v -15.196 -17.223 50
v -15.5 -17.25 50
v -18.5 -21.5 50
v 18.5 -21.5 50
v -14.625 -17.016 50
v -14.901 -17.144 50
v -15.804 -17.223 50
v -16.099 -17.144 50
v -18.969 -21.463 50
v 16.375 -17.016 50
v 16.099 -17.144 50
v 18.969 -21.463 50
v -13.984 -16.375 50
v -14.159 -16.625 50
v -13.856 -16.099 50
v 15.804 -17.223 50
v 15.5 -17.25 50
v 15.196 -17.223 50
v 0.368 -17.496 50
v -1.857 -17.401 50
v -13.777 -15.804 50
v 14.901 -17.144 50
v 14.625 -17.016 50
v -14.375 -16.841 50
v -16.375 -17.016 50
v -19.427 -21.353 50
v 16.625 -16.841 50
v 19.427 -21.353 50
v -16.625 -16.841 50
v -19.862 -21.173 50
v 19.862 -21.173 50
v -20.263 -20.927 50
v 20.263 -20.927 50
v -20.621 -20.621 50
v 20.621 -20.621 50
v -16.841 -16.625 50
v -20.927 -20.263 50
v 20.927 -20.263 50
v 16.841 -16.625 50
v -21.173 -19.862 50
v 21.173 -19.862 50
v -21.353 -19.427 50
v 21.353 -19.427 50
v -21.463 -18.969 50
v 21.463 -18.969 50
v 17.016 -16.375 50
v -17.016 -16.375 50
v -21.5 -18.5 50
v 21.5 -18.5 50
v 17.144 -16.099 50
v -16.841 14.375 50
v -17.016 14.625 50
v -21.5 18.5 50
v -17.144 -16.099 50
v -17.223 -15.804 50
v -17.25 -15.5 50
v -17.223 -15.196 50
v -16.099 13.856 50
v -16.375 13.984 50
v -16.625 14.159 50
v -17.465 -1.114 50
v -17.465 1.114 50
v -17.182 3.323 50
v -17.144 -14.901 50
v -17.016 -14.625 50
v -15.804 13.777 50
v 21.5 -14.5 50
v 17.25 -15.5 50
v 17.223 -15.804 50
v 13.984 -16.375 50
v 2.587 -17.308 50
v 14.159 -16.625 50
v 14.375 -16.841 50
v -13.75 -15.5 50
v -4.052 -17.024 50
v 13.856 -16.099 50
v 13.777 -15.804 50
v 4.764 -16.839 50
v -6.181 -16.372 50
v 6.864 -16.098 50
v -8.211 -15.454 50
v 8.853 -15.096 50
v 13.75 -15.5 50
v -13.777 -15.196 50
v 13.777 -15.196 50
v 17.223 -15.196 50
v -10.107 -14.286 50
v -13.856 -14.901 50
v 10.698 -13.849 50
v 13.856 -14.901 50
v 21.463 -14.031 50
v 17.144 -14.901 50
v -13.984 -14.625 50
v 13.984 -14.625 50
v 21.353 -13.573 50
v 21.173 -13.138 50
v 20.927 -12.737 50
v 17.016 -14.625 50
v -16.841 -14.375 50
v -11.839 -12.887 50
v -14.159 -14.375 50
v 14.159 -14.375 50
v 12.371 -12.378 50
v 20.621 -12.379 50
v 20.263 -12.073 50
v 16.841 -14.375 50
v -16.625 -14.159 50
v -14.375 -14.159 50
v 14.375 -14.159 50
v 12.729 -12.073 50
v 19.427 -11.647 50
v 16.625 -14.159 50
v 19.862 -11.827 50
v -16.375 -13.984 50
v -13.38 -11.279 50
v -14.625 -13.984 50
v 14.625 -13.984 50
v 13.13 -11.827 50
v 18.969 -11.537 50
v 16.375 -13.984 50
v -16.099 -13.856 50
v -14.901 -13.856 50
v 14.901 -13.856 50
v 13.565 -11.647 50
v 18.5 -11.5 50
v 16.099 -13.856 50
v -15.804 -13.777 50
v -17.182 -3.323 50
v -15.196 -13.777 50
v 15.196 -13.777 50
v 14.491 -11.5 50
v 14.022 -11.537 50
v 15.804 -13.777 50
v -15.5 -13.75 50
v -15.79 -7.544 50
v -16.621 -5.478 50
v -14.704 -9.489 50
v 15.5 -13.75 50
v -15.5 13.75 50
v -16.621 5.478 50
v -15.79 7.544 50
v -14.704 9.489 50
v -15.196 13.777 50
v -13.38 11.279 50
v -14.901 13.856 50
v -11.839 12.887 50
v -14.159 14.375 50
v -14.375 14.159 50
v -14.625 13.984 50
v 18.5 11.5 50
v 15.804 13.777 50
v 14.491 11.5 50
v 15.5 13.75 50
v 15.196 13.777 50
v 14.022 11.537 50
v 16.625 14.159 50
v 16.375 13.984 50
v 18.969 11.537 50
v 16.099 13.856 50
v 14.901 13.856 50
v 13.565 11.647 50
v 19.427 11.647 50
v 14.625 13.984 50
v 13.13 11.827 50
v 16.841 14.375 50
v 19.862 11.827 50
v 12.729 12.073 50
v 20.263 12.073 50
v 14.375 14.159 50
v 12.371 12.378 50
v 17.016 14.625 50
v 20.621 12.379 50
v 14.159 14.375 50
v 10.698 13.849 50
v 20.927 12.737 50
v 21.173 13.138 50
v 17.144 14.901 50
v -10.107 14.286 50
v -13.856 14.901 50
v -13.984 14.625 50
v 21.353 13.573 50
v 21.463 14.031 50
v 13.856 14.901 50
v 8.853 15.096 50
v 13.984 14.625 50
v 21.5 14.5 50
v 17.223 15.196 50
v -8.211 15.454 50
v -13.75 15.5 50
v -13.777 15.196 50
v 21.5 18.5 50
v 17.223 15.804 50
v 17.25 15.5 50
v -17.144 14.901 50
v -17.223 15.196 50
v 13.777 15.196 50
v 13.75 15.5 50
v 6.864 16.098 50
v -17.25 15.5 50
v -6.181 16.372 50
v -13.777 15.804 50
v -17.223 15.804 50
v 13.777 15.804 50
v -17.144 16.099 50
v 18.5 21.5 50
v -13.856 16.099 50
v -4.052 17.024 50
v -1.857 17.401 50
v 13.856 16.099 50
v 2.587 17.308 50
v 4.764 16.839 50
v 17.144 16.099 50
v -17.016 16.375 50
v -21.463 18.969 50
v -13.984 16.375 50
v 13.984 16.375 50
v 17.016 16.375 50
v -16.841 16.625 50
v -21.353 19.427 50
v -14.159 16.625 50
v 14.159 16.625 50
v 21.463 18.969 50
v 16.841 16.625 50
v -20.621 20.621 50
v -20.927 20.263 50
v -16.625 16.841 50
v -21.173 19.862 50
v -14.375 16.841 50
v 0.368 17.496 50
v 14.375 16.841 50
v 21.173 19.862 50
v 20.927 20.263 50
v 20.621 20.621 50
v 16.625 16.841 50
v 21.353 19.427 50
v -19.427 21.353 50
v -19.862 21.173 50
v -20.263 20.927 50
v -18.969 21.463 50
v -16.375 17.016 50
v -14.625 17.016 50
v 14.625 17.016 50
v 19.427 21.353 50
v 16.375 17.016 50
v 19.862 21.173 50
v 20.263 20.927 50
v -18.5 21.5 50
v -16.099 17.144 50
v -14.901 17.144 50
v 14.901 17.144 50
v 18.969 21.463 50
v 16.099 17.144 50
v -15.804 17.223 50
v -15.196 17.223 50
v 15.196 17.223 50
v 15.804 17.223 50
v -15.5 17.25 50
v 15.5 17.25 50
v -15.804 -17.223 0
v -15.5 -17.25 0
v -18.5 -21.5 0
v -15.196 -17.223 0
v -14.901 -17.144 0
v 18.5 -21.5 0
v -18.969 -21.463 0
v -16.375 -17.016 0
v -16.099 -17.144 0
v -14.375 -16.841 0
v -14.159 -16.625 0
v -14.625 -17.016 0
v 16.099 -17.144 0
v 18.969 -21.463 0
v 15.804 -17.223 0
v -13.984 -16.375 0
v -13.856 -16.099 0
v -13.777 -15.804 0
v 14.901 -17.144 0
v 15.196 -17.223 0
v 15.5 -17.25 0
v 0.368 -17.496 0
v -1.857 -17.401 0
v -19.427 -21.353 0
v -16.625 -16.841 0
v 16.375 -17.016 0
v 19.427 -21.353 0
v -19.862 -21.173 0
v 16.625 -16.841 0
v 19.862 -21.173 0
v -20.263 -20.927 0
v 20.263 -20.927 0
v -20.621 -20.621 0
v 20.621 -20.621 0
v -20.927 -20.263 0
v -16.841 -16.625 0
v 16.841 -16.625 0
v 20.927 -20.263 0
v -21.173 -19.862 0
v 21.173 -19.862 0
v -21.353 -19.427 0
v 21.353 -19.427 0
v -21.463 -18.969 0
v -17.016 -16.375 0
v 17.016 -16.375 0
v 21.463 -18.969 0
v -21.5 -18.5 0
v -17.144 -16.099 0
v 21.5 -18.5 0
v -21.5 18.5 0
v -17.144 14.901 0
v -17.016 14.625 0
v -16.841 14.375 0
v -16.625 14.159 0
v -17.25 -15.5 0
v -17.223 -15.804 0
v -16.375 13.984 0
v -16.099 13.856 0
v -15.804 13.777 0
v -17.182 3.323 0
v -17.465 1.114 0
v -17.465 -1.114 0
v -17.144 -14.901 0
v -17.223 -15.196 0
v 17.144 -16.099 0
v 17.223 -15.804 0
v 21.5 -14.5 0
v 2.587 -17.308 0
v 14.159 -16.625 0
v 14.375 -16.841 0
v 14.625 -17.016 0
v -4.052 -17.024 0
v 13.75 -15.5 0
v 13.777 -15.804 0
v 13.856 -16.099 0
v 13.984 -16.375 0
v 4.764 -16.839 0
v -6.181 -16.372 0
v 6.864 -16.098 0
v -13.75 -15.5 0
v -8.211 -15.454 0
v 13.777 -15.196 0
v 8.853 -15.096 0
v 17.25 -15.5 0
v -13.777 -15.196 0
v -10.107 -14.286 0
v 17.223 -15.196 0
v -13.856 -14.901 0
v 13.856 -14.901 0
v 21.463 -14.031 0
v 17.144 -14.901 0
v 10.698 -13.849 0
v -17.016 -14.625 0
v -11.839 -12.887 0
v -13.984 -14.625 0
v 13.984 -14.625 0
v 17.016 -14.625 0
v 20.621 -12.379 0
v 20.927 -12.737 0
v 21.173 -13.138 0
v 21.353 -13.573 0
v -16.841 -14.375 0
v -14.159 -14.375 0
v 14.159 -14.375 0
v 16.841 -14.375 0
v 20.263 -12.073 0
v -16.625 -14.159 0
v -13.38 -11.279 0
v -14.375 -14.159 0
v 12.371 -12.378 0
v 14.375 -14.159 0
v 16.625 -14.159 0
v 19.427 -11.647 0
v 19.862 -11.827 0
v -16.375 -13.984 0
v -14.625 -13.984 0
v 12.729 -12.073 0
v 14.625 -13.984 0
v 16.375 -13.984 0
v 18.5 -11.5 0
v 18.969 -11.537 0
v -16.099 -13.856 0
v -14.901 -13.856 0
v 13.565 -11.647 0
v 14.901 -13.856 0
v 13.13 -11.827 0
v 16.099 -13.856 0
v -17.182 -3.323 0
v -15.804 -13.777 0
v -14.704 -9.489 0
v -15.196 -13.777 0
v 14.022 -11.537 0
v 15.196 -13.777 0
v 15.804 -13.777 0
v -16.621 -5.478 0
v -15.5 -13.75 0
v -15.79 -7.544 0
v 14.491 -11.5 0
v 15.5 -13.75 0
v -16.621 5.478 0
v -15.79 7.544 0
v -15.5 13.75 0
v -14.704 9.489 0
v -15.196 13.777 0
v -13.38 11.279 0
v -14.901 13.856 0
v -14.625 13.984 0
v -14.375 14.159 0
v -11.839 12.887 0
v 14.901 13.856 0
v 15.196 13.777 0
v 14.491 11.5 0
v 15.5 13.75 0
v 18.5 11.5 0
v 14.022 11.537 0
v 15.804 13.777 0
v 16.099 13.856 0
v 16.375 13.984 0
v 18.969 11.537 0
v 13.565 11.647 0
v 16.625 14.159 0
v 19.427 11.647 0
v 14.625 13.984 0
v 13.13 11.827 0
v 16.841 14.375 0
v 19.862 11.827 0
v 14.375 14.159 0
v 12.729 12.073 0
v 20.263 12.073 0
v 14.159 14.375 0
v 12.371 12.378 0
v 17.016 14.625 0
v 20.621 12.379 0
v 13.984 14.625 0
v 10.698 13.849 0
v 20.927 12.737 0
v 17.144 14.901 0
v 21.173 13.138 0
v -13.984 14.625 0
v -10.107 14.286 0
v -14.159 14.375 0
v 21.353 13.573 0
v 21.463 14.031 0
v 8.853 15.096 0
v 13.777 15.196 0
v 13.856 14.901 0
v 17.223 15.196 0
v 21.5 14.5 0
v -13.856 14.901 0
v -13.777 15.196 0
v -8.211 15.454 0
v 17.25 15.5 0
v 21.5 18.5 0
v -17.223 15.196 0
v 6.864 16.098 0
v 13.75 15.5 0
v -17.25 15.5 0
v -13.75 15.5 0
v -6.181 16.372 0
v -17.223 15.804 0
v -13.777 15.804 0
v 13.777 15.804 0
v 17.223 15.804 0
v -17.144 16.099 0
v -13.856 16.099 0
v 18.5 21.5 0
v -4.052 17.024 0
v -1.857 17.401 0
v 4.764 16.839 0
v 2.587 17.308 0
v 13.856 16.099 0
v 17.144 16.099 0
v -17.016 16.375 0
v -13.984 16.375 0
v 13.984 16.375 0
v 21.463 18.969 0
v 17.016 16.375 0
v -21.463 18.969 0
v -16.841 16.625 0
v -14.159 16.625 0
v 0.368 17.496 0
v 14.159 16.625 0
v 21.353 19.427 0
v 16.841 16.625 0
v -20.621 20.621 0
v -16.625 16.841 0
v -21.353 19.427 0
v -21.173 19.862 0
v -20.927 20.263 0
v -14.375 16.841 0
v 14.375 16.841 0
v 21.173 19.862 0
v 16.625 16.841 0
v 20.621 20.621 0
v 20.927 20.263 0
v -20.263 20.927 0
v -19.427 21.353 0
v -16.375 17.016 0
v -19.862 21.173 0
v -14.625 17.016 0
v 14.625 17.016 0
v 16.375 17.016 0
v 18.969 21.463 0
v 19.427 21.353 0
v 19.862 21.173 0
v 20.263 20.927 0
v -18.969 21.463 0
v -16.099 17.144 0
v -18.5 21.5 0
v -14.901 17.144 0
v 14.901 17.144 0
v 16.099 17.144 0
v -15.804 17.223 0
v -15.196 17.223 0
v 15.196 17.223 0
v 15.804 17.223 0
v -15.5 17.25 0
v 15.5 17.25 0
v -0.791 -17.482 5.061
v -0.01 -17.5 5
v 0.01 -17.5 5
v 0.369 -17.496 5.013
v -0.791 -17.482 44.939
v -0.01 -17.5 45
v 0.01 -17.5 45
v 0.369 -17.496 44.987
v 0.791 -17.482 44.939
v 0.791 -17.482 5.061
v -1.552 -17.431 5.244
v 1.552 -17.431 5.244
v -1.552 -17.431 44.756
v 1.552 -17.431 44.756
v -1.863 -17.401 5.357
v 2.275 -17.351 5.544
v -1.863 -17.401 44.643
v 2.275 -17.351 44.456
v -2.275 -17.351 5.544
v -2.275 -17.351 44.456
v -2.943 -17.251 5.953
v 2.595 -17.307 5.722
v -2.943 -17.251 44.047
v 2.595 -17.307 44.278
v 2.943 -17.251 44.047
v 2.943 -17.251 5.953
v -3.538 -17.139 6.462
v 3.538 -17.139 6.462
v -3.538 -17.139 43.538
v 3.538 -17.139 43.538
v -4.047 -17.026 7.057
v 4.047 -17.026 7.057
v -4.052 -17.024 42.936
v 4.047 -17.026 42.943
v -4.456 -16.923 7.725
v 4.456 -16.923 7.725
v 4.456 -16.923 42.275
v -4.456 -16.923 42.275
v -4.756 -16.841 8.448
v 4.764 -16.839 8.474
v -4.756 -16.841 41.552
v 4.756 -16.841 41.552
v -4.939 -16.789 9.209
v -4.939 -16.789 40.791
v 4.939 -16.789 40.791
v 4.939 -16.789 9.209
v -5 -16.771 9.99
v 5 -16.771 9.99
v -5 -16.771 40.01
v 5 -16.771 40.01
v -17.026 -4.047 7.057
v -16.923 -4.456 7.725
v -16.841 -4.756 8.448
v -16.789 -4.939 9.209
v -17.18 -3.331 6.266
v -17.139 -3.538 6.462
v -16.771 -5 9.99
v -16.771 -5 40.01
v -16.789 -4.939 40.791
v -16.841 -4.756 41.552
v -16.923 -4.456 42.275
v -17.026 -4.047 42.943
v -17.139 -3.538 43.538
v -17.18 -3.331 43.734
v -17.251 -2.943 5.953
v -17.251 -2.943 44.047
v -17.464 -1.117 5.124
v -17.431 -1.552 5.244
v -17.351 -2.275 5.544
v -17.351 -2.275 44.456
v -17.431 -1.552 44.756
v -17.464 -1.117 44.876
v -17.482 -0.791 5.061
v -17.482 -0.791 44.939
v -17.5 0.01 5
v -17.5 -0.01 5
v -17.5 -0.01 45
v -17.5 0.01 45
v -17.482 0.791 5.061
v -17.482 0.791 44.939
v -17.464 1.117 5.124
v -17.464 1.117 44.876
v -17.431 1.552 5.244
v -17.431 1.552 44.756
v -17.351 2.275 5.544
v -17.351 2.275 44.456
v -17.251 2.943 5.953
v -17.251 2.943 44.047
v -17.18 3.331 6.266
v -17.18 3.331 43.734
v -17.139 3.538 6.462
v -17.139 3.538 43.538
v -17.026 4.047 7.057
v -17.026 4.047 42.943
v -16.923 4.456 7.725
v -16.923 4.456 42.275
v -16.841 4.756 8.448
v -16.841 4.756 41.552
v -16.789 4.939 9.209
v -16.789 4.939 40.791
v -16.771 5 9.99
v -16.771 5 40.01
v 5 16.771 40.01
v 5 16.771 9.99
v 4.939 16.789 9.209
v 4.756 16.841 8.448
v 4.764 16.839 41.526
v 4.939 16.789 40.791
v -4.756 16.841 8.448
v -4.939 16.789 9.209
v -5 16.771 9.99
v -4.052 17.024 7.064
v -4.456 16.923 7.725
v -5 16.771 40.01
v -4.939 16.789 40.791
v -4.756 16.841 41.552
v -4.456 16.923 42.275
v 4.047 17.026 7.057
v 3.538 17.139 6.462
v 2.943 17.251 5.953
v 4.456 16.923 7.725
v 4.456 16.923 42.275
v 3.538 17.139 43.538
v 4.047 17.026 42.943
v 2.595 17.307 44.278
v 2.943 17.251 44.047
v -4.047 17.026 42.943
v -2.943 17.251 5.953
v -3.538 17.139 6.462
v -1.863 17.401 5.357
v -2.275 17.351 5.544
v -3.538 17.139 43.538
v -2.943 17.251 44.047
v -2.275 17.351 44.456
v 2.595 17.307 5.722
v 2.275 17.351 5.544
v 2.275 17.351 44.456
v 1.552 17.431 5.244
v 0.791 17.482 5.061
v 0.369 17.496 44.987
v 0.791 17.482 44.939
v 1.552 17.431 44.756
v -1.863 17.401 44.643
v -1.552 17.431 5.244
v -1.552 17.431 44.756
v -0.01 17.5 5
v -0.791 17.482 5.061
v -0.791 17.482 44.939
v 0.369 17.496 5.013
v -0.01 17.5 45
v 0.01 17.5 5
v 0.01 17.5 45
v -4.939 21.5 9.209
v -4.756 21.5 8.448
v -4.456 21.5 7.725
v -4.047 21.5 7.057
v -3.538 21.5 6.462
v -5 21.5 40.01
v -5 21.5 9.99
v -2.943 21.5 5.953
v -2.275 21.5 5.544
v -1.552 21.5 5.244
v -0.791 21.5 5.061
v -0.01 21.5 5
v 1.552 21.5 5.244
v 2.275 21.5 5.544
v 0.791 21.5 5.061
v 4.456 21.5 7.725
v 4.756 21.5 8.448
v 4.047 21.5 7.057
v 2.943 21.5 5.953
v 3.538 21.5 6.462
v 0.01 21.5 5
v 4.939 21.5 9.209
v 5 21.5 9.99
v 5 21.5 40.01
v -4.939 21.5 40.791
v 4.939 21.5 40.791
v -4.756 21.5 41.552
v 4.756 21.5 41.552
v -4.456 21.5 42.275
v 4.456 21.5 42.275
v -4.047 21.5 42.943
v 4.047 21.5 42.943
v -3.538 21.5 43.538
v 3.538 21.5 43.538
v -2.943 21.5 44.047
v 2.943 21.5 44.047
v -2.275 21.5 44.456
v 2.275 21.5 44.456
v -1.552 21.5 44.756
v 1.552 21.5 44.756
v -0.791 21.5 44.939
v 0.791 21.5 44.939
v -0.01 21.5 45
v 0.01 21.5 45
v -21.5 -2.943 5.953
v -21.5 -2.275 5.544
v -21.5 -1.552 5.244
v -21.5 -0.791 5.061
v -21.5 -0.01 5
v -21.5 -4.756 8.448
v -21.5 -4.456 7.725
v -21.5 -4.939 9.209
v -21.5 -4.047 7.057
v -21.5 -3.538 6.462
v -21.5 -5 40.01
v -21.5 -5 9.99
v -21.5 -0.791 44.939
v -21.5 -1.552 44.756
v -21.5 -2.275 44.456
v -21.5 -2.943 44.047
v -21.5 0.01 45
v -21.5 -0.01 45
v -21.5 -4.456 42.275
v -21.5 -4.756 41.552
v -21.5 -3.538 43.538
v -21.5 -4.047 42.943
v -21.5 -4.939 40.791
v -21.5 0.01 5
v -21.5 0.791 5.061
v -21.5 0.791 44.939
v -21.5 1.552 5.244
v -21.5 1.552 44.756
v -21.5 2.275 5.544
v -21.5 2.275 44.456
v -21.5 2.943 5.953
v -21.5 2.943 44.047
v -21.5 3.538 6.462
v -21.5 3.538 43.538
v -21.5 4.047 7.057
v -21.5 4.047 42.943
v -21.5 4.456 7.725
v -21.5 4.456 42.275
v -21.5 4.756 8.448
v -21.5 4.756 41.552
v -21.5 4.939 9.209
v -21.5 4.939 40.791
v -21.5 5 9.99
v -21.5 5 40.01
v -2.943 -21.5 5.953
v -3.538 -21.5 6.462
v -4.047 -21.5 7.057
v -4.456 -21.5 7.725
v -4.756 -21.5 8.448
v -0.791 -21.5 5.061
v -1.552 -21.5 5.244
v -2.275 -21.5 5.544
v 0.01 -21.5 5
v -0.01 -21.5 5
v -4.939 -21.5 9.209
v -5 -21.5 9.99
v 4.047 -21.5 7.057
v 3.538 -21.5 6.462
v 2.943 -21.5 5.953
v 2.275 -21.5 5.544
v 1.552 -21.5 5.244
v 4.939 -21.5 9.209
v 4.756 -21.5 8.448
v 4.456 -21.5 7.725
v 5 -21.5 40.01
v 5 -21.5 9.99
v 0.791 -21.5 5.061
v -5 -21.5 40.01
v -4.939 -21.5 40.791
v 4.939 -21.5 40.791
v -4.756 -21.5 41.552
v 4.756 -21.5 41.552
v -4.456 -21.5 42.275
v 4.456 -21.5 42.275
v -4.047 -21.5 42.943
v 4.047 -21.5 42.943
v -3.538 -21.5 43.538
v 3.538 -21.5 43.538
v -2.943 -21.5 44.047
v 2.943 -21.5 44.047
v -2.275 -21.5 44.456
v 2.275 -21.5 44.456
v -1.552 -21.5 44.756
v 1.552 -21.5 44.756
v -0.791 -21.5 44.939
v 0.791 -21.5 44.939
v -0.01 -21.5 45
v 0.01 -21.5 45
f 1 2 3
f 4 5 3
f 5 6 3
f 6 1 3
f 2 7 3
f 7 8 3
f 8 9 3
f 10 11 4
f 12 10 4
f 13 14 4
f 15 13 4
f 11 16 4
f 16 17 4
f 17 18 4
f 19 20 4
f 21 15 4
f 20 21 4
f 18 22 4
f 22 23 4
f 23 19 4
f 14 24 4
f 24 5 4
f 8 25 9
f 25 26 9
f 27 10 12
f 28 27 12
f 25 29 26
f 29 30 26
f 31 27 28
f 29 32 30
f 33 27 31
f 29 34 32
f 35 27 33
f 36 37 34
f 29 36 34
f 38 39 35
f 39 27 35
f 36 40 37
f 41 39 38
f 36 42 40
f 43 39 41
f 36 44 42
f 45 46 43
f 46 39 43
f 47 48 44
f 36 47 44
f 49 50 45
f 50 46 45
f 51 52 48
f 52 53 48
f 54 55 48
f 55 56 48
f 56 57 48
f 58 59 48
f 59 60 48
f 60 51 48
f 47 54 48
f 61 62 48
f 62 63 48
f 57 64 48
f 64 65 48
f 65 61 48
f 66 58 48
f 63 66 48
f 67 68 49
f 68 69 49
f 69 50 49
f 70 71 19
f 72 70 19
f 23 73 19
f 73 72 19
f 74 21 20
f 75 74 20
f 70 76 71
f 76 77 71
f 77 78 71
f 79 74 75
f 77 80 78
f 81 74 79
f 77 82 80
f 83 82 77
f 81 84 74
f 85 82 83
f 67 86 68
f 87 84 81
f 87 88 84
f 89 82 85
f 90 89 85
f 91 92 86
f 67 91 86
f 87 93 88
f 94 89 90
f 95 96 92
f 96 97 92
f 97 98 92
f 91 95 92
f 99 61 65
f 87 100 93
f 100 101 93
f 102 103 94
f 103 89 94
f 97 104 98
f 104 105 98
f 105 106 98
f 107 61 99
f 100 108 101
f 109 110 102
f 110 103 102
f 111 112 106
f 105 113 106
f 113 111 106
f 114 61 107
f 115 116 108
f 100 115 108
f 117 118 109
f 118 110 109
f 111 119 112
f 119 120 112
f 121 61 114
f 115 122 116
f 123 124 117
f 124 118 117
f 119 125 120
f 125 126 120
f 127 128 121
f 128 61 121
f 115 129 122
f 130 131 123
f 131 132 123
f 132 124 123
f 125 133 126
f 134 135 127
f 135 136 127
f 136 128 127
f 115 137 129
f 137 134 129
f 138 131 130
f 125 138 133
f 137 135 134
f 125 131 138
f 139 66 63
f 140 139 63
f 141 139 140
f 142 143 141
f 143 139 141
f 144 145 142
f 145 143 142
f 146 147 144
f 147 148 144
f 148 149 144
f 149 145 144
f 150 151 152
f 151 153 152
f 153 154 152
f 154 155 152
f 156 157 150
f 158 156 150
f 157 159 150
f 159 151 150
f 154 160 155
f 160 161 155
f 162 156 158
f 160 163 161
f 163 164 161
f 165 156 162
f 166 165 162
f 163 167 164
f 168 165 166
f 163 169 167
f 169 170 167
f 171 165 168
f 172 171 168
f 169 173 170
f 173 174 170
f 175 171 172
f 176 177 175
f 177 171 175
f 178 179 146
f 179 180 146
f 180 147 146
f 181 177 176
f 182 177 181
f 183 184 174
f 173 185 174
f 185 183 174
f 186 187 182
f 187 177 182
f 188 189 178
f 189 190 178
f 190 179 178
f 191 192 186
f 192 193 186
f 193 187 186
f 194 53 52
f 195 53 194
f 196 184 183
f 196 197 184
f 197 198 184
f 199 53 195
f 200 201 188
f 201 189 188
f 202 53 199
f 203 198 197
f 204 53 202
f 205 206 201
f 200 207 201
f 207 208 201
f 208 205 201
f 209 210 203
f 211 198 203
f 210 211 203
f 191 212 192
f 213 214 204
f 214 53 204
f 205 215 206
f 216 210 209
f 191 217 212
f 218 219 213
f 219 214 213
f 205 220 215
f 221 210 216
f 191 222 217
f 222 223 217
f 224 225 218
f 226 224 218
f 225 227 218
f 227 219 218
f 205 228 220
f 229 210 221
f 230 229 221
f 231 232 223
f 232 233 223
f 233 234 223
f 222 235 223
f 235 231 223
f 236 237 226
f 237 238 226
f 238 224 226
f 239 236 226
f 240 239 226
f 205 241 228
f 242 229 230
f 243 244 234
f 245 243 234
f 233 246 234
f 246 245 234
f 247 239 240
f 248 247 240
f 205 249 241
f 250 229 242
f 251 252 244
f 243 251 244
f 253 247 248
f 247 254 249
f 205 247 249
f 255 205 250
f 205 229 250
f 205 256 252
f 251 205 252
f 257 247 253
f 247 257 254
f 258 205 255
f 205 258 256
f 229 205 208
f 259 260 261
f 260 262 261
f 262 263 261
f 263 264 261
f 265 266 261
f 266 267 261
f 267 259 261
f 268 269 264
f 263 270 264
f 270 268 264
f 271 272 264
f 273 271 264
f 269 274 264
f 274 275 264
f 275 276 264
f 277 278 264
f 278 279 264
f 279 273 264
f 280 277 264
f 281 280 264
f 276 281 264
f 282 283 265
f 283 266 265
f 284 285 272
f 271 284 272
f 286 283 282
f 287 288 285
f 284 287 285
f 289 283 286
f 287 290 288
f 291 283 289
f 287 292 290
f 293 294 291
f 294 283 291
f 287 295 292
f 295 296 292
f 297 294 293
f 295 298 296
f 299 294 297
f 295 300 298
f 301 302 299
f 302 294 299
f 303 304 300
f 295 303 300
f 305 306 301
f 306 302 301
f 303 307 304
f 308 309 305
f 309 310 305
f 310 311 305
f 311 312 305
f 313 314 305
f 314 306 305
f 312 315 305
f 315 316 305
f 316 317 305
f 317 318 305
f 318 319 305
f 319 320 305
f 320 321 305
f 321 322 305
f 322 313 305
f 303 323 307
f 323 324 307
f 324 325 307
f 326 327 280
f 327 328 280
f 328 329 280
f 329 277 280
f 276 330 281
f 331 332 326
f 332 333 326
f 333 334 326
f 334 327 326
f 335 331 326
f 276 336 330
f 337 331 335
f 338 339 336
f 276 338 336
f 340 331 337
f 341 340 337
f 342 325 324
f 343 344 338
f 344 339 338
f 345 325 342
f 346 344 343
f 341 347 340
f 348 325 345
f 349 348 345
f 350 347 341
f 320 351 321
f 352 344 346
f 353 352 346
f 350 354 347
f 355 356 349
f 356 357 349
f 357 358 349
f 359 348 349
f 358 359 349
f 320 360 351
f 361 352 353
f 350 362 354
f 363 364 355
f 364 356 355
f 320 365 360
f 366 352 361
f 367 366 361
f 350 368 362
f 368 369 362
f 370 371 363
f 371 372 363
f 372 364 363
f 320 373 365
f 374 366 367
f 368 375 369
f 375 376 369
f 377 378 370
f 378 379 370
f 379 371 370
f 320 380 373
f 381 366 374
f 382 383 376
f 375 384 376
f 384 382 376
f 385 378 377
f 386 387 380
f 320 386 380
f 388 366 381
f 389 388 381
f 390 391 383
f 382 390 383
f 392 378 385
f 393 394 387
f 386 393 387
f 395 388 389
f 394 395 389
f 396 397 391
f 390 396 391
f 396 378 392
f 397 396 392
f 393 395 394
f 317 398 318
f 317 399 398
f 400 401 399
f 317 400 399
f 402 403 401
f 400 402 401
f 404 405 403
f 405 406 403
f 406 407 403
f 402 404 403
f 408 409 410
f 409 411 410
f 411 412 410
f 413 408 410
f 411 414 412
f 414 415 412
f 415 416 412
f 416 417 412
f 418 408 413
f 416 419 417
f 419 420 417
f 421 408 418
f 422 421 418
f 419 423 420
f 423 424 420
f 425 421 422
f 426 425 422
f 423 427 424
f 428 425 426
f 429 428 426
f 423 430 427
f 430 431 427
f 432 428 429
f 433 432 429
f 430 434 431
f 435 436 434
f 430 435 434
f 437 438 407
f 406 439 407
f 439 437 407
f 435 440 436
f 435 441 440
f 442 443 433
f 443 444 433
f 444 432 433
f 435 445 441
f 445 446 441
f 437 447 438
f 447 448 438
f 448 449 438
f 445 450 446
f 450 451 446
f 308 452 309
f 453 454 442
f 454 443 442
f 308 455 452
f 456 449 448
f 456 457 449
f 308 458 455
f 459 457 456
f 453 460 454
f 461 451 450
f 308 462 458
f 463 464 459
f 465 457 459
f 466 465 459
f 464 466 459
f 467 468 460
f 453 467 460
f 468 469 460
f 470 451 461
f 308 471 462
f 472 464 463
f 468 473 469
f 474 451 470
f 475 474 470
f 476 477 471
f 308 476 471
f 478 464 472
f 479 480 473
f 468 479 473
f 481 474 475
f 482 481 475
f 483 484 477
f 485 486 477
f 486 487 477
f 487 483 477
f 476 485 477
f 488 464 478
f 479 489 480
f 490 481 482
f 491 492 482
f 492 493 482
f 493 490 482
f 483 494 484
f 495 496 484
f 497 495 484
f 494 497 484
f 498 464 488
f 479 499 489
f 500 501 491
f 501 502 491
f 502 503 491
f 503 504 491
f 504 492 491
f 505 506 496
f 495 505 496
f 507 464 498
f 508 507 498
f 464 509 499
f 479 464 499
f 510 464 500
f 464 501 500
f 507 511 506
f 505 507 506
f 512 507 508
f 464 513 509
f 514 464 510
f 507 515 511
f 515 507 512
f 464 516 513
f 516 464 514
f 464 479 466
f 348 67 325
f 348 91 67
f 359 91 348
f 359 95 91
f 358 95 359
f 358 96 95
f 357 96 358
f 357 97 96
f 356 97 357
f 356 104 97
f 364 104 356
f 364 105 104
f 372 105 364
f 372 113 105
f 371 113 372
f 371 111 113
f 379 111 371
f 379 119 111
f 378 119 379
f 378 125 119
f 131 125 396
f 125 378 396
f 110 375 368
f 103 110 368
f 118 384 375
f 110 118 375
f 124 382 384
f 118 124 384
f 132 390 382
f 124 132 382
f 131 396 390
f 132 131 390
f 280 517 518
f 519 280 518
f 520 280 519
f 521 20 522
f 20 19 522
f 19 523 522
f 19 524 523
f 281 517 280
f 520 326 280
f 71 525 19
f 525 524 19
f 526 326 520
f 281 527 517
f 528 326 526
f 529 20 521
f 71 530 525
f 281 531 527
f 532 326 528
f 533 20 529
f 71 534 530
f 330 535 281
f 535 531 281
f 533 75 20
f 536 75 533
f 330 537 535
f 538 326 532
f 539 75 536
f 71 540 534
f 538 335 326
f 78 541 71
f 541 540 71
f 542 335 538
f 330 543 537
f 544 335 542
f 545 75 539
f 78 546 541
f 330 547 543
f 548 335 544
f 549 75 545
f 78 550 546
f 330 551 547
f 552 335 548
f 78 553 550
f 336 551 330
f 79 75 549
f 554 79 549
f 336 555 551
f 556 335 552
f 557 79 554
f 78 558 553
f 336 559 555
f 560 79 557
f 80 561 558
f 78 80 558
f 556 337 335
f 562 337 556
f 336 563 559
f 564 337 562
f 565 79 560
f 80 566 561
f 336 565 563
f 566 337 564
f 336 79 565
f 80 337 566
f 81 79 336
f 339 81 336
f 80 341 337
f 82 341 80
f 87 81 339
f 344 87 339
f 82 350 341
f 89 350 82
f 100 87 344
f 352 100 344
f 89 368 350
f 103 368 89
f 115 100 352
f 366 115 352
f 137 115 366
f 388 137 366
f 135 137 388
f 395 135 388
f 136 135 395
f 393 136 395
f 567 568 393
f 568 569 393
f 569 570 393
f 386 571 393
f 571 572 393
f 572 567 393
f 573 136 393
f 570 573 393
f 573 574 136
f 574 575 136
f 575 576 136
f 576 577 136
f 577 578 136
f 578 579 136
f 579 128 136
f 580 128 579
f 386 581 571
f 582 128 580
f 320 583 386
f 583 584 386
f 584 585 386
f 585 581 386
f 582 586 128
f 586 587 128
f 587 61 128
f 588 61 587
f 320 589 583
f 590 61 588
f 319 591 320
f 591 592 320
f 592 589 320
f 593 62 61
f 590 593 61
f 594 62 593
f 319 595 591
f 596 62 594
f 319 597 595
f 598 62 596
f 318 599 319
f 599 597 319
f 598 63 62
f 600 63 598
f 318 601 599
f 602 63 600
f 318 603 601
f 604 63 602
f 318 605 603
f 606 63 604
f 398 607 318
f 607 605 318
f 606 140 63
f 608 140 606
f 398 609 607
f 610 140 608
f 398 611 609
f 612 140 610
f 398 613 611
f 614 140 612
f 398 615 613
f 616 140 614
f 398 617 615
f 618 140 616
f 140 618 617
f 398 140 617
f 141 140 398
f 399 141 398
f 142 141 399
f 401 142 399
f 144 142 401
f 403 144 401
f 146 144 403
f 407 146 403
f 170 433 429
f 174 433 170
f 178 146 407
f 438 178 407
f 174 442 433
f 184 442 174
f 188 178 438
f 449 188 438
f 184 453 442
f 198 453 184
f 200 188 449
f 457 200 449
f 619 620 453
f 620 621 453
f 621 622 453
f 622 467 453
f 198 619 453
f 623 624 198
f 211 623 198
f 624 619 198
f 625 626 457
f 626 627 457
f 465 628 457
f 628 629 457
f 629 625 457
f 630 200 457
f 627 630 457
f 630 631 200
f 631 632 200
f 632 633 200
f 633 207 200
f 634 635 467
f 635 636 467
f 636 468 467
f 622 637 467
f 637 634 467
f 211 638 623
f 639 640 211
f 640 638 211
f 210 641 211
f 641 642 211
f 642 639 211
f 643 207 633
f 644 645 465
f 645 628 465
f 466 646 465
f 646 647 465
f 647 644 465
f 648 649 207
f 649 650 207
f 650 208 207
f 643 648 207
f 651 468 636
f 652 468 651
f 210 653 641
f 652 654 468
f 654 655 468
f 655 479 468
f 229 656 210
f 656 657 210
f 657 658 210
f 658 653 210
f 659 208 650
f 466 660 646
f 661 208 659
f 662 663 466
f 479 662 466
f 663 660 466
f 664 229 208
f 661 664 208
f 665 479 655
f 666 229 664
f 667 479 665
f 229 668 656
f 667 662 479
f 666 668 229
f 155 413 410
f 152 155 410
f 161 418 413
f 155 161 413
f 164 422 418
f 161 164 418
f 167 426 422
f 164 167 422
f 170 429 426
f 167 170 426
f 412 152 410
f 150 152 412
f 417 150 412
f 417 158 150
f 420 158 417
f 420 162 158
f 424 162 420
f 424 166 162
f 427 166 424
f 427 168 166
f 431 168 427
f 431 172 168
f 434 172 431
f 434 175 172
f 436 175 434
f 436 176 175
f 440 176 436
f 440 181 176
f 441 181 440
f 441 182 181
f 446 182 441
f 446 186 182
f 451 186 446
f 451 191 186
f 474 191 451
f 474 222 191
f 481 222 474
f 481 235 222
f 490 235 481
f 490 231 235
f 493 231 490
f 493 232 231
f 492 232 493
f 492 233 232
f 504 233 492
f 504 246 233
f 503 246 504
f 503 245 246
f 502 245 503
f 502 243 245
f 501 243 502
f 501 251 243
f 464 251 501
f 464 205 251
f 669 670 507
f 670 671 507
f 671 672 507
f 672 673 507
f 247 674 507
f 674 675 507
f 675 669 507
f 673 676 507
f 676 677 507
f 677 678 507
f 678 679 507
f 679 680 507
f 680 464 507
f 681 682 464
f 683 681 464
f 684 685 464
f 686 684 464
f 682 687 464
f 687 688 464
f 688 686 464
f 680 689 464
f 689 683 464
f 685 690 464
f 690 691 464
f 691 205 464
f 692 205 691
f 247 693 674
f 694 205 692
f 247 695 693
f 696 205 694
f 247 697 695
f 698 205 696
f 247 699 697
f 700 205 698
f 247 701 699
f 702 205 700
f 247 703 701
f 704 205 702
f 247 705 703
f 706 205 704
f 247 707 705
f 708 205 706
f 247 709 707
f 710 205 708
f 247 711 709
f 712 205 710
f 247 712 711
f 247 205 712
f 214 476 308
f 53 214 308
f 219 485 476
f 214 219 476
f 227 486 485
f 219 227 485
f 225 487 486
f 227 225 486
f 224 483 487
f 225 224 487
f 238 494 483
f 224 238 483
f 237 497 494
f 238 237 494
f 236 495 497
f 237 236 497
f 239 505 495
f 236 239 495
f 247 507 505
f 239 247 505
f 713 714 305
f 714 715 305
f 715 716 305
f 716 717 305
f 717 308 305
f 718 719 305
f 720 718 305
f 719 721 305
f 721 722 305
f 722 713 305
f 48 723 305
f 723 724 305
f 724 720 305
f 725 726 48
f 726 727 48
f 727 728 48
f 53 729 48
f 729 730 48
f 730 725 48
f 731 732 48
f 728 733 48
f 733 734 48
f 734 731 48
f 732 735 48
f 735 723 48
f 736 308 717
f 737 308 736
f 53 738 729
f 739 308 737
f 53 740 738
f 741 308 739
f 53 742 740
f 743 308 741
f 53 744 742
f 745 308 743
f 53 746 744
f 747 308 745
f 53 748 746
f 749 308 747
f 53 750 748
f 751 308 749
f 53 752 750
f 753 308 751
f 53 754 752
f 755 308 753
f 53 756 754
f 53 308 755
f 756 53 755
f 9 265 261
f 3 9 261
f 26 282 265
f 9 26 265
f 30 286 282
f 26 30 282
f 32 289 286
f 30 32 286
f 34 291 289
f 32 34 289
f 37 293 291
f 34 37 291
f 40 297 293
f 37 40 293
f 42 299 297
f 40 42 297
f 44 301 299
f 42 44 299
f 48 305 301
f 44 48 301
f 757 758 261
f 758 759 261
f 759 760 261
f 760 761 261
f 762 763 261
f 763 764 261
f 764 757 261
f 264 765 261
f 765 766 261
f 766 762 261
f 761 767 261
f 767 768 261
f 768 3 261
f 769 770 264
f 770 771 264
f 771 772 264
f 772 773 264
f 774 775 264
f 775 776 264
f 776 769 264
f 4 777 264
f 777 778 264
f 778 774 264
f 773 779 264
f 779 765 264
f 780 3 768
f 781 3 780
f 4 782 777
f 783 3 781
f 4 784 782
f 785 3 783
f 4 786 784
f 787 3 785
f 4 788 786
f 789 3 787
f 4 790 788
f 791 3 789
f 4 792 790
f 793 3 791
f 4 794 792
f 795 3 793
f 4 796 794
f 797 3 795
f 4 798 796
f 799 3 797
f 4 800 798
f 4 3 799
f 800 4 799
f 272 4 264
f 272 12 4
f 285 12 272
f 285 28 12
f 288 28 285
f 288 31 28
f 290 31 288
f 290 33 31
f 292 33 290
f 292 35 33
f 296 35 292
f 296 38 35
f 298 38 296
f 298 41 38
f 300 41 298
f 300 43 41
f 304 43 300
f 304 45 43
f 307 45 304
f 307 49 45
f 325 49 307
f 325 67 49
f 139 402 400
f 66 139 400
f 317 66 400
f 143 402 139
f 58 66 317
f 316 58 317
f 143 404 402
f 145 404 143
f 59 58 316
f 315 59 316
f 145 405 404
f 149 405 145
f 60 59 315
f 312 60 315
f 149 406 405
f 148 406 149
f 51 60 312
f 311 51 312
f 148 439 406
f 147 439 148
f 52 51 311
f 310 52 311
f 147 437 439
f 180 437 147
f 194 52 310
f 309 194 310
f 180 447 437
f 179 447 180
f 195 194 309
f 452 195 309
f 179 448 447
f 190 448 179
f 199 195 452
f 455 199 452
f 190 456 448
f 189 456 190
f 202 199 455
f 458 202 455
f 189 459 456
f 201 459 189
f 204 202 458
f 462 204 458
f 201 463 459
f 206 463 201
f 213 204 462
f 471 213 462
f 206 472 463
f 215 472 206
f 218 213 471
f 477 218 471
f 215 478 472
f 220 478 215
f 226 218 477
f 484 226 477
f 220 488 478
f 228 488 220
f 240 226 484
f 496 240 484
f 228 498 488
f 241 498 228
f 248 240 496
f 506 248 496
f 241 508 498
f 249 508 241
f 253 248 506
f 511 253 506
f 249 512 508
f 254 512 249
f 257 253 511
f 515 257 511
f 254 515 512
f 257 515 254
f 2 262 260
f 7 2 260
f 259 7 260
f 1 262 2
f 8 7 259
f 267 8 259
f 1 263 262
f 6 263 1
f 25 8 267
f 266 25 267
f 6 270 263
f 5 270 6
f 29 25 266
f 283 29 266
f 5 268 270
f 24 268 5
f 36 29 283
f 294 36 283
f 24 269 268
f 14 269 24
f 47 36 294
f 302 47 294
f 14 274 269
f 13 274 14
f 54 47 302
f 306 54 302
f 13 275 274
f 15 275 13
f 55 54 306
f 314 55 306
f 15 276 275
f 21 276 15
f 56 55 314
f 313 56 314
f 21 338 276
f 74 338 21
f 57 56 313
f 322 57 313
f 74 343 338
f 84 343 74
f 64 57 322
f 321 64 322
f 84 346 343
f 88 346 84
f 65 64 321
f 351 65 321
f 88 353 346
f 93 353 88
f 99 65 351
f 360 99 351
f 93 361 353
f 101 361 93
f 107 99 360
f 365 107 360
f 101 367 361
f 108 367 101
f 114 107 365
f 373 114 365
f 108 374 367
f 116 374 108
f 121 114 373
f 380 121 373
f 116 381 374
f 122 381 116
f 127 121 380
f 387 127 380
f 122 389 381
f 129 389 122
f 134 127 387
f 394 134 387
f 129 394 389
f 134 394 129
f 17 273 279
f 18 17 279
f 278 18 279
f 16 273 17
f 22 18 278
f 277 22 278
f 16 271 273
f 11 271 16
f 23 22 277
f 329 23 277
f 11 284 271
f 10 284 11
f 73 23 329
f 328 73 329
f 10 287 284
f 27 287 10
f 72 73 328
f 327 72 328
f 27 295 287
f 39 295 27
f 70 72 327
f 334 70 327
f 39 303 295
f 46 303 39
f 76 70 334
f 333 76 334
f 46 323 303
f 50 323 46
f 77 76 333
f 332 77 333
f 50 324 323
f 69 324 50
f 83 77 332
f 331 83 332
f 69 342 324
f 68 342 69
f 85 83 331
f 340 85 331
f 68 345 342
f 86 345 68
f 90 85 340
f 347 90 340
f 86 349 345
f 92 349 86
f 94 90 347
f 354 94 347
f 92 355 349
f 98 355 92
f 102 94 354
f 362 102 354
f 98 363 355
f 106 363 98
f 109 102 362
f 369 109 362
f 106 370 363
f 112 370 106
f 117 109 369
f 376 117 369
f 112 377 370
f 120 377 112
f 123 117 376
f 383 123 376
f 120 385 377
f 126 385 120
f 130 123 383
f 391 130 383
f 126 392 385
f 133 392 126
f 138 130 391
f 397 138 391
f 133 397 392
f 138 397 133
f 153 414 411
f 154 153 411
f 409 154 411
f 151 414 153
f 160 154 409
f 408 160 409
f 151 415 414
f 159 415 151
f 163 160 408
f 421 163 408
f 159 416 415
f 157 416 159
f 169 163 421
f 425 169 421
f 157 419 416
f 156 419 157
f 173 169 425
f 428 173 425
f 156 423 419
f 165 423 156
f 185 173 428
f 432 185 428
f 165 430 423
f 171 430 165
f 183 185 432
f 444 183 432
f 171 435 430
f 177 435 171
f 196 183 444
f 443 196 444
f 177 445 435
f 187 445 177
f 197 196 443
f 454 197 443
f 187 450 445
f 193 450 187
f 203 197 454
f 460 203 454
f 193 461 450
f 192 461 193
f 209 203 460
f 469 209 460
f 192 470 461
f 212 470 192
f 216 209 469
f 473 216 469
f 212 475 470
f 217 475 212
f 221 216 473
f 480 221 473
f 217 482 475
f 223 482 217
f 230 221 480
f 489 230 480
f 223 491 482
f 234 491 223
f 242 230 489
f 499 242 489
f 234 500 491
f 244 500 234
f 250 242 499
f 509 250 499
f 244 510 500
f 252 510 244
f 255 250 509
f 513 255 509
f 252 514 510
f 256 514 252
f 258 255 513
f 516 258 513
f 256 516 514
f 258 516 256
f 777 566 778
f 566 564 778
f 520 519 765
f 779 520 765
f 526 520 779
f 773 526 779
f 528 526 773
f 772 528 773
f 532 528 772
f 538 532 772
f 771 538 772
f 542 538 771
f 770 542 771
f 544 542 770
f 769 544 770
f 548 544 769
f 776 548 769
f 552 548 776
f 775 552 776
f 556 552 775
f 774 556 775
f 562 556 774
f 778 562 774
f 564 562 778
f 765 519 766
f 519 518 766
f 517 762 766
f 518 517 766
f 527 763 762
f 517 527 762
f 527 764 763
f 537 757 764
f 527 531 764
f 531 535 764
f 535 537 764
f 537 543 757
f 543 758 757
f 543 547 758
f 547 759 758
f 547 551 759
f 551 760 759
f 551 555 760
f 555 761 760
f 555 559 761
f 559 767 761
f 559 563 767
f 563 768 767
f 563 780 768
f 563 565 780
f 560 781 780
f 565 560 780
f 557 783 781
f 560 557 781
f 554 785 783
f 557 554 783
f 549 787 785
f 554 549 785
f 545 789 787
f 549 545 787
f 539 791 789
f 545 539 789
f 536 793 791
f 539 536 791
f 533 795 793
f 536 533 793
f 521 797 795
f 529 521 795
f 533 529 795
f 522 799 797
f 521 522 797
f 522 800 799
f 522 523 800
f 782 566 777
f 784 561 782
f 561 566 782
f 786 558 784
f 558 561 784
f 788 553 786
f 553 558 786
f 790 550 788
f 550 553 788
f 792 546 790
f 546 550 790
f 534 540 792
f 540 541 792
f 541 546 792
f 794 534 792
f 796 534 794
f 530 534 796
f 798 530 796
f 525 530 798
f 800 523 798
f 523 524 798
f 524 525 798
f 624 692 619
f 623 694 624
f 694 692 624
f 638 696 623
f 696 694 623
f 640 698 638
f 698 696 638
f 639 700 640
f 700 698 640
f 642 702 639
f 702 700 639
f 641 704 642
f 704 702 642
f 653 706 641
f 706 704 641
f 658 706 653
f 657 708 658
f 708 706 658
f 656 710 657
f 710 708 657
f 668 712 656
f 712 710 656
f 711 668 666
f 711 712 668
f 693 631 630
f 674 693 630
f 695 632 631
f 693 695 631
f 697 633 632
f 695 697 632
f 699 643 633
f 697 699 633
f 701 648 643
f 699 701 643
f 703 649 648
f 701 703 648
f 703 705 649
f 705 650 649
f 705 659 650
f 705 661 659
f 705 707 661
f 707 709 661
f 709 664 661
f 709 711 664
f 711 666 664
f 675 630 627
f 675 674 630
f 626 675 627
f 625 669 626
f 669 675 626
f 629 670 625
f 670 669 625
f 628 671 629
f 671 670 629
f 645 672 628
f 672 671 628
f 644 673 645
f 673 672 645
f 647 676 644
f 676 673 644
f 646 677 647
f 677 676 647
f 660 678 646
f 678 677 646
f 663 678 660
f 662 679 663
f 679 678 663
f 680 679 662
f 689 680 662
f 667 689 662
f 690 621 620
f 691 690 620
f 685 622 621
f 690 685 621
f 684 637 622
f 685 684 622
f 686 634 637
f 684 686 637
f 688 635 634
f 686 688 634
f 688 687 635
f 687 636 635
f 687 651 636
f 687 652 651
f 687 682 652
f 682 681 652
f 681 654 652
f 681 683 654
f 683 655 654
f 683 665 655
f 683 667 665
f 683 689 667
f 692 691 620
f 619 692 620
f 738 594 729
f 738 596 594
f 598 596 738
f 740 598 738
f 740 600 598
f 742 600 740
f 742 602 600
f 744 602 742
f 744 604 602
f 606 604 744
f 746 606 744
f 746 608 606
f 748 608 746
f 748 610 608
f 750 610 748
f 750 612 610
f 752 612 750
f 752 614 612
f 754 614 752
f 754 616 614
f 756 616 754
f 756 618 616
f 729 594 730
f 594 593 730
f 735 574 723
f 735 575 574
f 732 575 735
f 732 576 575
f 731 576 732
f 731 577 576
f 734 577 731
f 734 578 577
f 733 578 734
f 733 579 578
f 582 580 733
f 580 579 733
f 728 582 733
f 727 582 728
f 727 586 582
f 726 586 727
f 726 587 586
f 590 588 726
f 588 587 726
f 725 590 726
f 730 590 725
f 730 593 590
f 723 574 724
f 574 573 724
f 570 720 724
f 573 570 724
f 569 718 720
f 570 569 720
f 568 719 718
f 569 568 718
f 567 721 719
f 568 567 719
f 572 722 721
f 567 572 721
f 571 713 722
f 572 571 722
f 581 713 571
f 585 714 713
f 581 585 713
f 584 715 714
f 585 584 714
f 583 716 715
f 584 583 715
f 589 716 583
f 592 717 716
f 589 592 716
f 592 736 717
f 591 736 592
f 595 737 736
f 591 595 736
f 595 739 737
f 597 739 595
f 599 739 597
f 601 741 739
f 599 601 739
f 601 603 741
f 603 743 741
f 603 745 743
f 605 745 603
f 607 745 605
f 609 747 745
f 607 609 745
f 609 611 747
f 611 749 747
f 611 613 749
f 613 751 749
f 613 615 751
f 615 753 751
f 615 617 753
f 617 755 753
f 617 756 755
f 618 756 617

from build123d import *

# Parameters (mm, degrees)
SKETCH1_R           = 1.75
BOSS_EXTRUDE1_DEPTH = 50
CUT_EXTRUDE1_DEPTH  = 50
CUT_EXTRUDE2_DEPTH  = 50


with BuildPart() as part:
    # Sketch1 → Boss-Extrude1 (new body)
    with BuildSketch(Plane.XY):
        with BuildLine():
            Line((18.5, -21.5), (-18.5, -21.5))
            ThreePointArc((-18.5, -21.5), (-20.621320344, -20.621320344), (-21.5, -18.5))
            Line((-21.5, -18.5), (-21.5, 18.5))
            ThreePointArc((-21.5, 18.5), (-20.621320344, 20.621320344), (-18.5, 21.5))
            Line((-18.5, 21.5), (18.5, 21.5))
            ThreePointArc((18.5, 21.5), (20.621320344, 20.621320344), (21.5, 18.5))
            Line((21.5, 18.5), (21.5, 14.5))
            ThreePointArc((21.5, 14.5), (20.621320344, 12.378679656), (18.5, 11.5))
            Line((18.5, 11.5), (14.491376746, 11.5))
            ThreePointArc((14.491376746, 11.5), (13.343738663, 11.728190694), (12.370687466, 12.37804878))
            ThreePointArc((12.370687466, 12.37804878), (-17.5, 0), (12.370687466, -12.37804878))
            ThreePointArc((12.370687466, -12.37804878), (13.343738663, -11.728190694), (14.491376746, -11.5))
            Line((14.491376746, -11.5), (18.5, -11.5))
            ThreePointArc((18.5, -11.5), (20.621320344, -12.378679656), (21.5, -14.5))
            Line((21.5, -14.5), (21.5, -18.5))
            ThreePointArc((21.5, -18.5), (20.621320344, -20.621320344), (18.5, -21.5))
        make_face()
        with Locations((-15.5, 15.5)):
            Circle(SKETCH1_R, mode=Mode.SUBTRACT)
        with Locations((-15.5, -15.5)):
            Circle(SKETCH1_R, mode=Mode.SUBTRACT)
        with Locations((15.5, -15.5)):
            Circle(SKETCH1_R, mode=Mode.SUBTRACT)
        with Locations((15.5, 15.5)):
            Circle(SKETCH1_R, mode=Mode.SUBTRACT)
    extrude(amount=BOSS_EXTRUDE1_DEPTH)

    # Sketch2 → Cut-Extrude1 (cut)
    with BuildSketch(Plane(origin=(0, 21.5, 0), x_dir=(1, 0, 0), z_dir=(0, 1, 0))):
        with BuildLine():
            Line((-0.01, -45), (0.01, -45))
            ThreePointArc((0.01, -45), (3.538462838, -43.538462838), (5, -40.01))
            Line((5, -40.01), (5, -9.99))
            ThreePointArc((5, -9.99), (3.538462838, -6.461537162), (0.01, -5))
            Line((0.01, -5), (-0.01, -5))
            ThreePointArc((-0.01, -5), (-3.538462838, -6.461537162), (-5, -9.99))
            Line((-5, -9.99), (-5, -40.01))
            ThreePointArc((-5, -40.01), (-3.538462838, -43.538462838), (-0.01, -45))
        make_face()
    extrude(amount=-CUT_EXTRUDE1_DEPTH, mode=Mode.SUBTRACT)

    # Sketch3 → Cut-Extrude2 (cut)
    with BuildSketch(Plane.ZY.offset(21.5)):
        with BuildLine():
            Line((9.99, -5), (40.01, -5))
            ThreePointArc((40.01, -5), (43.538462838, -3.538462838), (45, -0.01))
            Line((45, -0.01), (45, 0.01))
            ThreePointArc((45, 0.01), (43.538462838, 3.538462838), (40.01, 5))
            Line((40.01, 5), (9.99, 5))
            ThreePointArc((9.99, 5), (6.461537162, 3.538462838), (5, 0.01))
            Line((5, 0.01), (5, -0.01))
            ThreePointArc((5, -0.01), (6.461537162, -3.538462838), (9.99, -5))
        make_face()
    extrude(amount=-CUT_EXTRUDE2_DEPTH, mode=Mode.SUBTRACT)


solid = part.part
